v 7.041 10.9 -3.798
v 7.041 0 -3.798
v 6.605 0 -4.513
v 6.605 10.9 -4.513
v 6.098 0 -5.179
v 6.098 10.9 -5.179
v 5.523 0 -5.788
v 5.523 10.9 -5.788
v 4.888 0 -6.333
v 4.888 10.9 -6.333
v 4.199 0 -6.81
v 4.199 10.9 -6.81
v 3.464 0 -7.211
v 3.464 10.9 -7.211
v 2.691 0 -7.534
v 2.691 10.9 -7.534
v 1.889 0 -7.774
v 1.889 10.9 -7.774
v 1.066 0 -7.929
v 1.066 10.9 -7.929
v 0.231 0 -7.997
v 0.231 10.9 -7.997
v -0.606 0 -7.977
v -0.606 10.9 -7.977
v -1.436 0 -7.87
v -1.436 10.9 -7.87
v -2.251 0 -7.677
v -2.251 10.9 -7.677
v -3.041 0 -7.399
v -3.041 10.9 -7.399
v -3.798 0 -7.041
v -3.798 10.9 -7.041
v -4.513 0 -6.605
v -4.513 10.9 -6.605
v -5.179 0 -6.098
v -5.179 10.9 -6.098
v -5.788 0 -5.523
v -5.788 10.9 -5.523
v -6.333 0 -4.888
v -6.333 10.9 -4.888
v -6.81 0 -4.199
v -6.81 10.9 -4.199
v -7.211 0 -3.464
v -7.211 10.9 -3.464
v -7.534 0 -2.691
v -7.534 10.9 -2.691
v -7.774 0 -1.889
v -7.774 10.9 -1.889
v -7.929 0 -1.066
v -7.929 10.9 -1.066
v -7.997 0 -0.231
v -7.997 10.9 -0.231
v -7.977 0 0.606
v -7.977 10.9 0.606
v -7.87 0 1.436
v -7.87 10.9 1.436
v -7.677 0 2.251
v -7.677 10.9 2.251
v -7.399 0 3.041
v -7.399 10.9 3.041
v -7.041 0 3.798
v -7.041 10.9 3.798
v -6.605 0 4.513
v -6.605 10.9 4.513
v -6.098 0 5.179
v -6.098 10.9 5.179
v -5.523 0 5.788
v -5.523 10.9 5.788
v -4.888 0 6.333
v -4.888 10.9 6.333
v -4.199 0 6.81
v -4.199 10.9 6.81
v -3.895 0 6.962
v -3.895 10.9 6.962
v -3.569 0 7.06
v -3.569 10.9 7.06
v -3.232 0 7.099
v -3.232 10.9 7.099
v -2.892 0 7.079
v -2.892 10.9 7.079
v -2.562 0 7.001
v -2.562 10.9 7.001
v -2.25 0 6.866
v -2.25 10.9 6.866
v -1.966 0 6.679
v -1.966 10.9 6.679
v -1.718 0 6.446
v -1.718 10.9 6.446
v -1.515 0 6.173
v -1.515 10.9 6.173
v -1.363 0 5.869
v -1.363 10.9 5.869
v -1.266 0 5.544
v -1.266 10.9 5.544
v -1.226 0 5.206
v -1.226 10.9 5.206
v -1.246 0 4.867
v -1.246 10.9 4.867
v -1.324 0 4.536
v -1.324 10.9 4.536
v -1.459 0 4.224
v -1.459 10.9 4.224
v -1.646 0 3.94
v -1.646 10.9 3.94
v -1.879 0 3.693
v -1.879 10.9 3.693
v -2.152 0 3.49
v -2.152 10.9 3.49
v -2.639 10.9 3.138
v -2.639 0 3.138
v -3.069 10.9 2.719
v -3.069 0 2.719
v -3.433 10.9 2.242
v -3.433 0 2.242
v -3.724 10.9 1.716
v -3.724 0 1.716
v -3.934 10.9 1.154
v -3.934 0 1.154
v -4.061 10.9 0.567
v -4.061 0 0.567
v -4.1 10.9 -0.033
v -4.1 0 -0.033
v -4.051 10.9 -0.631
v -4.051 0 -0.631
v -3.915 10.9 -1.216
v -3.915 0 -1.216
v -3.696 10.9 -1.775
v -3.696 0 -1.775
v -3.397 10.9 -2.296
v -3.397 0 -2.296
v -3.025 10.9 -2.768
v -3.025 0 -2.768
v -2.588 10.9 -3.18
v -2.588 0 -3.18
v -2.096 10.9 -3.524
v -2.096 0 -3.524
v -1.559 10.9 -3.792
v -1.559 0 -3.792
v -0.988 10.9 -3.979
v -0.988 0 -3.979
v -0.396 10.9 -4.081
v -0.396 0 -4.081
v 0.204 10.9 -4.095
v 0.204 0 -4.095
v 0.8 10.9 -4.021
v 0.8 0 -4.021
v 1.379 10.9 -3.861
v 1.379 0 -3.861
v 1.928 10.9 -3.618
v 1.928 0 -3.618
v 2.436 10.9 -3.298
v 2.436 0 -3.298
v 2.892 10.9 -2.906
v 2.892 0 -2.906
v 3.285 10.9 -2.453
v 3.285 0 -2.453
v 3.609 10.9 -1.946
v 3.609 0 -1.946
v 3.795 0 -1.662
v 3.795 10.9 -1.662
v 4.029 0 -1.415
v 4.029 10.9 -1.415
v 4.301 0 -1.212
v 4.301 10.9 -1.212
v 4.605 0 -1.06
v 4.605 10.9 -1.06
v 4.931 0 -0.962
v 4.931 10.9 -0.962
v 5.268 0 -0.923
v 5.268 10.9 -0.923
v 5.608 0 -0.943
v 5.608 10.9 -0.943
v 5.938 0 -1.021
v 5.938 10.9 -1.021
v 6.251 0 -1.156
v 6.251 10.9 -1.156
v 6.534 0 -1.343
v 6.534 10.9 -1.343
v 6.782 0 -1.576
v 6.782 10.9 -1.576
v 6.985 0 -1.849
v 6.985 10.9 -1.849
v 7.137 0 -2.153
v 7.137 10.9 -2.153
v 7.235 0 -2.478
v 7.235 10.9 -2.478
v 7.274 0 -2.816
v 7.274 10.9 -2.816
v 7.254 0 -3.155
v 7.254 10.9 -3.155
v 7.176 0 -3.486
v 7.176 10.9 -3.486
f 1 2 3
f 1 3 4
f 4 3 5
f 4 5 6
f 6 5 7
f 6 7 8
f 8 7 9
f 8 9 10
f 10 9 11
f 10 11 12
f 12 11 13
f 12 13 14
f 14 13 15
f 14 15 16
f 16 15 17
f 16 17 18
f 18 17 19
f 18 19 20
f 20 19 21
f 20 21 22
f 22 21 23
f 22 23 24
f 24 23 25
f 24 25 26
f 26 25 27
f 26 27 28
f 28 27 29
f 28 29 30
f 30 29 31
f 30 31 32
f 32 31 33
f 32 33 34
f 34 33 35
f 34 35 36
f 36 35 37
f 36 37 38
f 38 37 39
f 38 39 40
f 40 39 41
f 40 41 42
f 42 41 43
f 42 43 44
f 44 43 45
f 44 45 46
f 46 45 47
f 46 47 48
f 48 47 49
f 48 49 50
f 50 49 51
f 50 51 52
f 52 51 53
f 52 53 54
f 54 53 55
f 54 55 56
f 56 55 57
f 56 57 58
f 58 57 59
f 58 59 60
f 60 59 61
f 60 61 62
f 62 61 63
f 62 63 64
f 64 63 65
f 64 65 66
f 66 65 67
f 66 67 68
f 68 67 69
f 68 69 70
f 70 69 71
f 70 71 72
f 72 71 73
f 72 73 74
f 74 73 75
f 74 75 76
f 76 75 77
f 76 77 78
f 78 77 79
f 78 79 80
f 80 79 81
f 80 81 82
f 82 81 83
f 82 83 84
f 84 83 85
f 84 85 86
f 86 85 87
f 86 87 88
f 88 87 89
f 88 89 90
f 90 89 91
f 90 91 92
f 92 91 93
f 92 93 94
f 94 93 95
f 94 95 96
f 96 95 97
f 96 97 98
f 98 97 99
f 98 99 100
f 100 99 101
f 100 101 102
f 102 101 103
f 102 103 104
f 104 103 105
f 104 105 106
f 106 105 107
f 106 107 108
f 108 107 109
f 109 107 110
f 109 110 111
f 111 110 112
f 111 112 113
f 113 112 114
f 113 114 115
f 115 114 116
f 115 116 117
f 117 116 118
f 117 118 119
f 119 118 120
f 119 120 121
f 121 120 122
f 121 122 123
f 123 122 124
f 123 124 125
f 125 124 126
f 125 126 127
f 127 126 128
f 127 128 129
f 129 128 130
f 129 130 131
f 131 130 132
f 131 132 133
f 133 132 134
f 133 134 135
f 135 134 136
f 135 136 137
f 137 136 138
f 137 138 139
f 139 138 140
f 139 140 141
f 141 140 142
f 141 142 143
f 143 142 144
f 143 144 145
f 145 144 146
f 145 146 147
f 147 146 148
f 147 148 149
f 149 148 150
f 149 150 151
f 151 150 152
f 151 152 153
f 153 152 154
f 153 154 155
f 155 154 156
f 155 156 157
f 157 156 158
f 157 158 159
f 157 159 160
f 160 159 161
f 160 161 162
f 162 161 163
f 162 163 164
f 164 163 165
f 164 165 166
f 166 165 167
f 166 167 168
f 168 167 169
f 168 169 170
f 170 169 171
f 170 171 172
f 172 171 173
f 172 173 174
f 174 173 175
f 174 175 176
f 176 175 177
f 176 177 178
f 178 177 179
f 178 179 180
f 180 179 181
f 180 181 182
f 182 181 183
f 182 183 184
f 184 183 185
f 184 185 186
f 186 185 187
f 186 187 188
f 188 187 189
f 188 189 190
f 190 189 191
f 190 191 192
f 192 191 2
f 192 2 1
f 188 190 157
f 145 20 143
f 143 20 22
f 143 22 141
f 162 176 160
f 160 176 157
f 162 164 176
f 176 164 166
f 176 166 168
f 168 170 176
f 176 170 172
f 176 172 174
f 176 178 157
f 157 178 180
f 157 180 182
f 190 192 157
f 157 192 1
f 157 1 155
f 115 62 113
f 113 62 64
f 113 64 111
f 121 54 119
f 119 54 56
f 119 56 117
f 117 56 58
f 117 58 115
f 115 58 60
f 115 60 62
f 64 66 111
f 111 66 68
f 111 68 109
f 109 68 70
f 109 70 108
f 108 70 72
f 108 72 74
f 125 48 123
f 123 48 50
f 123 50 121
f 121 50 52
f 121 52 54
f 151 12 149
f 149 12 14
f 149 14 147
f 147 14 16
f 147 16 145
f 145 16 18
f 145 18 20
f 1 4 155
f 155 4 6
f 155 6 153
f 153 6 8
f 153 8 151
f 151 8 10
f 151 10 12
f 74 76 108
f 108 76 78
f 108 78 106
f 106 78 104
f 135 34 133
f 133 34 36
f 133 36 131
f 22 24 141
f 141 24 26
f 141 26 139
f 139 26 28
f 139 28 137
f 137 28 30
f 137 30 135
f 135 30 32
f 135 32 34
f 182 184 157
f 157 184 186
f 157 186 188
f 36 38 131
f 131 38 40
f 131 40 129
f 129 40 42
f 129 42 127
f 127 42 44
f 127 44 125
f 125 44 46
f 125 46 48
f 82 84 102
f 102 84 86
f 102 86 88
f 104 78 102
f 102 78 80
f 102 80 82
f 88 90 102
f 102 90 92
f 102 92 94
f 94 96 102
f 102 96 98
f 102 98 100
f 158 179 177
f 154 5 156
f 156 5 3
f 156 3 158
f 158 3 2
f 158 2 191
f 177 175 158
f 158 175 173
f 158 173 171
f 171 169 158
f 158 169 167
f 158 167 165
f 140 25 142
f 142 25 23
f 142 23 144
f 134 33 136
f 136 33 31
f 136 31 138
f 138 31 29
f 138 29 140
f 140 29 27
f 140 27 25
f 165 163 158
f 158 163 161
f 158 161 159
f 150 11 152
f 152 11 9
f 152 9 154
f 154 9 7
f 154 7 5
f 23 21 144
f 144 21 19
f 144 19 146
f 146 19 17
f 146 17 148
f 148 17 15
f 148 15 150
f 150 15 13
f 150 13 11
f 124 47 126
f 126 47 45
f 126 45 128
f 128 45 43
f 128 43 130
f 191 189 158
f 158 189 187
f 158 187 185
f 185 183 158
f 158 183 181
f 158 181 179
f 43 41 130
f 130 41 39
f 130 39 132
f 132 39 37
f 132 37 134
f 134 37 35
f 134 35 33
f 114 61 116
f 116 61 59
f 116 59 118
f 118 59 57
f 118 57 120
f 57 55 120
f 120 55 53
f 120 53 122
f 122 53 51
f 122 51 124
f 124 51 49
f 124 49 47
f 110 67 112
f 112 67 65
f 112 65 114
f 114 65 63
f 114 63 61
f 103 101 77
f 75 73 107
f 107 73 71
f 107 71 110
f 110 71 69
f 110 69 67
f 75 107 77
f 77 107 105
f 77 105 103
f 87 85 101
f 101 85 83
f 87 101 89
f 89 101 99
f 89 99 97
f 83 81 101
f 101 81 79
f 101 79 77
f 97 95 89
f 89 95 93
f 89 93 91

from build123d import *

# Parameters (mm, degrees)
ESTRUSIONE_ESTRUSIONE1_DEPTH = 10.9


with BuildPart() as part:
    # Schizzo1 → Estrusione-Estrusione1 (new body)
    with BuildSketch(Plane(origin=(0, 0, 0), x_dir=(1, 0, 0), z_dir=(0, 1, 0))):
        with BuildLine():
            ThreePointArc((-2.151851846, -3.489918858), (-2.814062516, 2.981786738), (3.608517792, 1.946432465))
            ThreePointArc((3.608517792, 1.946432465), (4.39902179, 4.588421002), (7.041010327, 3.797917005))
            ThreePointArc((7.041010327, 3.797917005), (-5.49085365, 5.818120504), (-4.198735404, -6.809597712))
            ThreePointArc((-4.198735404, -6.809597712), (-4.835133005, -4.126316535), (-2.151851846, -3.489918858))
        make_face()
        with BuildLine():
            ThreePointArc((-1.225293577, -5.149758315), (-1.47261754, -4.199287741), (-2.151851846, -3.489918858))
            ThreePointArc((-2.151851846, -3.489918858), (-4.835133005, -4.126316535), (-4.198735404, -6.809597712))
            ThreePointArc((-4.198735404, -6.809597712), (-2.224823052, -6.852434379), (-1.225293577, -5.149758315))
        make_face()
        with BuildLine():
            ThreePointArc((7.041010327, 3.797917005), (4.39902179, 4.588421002), (3.608517792, 1.946432465))
            ThreePointArc((3.608517792, 1.946432465), (5.802163148, 0.981516091), (7.27476406, 2.872174735))
            ThreePointArc((7.27476406, 2.872174735), (7.215422704, 3.349573823), (7.041010327, 3.797917005))
        make_face()
    extrude(amount=ESTRUSIONE_ESTRUSIONE1_DEPTH)


solid = part.part
